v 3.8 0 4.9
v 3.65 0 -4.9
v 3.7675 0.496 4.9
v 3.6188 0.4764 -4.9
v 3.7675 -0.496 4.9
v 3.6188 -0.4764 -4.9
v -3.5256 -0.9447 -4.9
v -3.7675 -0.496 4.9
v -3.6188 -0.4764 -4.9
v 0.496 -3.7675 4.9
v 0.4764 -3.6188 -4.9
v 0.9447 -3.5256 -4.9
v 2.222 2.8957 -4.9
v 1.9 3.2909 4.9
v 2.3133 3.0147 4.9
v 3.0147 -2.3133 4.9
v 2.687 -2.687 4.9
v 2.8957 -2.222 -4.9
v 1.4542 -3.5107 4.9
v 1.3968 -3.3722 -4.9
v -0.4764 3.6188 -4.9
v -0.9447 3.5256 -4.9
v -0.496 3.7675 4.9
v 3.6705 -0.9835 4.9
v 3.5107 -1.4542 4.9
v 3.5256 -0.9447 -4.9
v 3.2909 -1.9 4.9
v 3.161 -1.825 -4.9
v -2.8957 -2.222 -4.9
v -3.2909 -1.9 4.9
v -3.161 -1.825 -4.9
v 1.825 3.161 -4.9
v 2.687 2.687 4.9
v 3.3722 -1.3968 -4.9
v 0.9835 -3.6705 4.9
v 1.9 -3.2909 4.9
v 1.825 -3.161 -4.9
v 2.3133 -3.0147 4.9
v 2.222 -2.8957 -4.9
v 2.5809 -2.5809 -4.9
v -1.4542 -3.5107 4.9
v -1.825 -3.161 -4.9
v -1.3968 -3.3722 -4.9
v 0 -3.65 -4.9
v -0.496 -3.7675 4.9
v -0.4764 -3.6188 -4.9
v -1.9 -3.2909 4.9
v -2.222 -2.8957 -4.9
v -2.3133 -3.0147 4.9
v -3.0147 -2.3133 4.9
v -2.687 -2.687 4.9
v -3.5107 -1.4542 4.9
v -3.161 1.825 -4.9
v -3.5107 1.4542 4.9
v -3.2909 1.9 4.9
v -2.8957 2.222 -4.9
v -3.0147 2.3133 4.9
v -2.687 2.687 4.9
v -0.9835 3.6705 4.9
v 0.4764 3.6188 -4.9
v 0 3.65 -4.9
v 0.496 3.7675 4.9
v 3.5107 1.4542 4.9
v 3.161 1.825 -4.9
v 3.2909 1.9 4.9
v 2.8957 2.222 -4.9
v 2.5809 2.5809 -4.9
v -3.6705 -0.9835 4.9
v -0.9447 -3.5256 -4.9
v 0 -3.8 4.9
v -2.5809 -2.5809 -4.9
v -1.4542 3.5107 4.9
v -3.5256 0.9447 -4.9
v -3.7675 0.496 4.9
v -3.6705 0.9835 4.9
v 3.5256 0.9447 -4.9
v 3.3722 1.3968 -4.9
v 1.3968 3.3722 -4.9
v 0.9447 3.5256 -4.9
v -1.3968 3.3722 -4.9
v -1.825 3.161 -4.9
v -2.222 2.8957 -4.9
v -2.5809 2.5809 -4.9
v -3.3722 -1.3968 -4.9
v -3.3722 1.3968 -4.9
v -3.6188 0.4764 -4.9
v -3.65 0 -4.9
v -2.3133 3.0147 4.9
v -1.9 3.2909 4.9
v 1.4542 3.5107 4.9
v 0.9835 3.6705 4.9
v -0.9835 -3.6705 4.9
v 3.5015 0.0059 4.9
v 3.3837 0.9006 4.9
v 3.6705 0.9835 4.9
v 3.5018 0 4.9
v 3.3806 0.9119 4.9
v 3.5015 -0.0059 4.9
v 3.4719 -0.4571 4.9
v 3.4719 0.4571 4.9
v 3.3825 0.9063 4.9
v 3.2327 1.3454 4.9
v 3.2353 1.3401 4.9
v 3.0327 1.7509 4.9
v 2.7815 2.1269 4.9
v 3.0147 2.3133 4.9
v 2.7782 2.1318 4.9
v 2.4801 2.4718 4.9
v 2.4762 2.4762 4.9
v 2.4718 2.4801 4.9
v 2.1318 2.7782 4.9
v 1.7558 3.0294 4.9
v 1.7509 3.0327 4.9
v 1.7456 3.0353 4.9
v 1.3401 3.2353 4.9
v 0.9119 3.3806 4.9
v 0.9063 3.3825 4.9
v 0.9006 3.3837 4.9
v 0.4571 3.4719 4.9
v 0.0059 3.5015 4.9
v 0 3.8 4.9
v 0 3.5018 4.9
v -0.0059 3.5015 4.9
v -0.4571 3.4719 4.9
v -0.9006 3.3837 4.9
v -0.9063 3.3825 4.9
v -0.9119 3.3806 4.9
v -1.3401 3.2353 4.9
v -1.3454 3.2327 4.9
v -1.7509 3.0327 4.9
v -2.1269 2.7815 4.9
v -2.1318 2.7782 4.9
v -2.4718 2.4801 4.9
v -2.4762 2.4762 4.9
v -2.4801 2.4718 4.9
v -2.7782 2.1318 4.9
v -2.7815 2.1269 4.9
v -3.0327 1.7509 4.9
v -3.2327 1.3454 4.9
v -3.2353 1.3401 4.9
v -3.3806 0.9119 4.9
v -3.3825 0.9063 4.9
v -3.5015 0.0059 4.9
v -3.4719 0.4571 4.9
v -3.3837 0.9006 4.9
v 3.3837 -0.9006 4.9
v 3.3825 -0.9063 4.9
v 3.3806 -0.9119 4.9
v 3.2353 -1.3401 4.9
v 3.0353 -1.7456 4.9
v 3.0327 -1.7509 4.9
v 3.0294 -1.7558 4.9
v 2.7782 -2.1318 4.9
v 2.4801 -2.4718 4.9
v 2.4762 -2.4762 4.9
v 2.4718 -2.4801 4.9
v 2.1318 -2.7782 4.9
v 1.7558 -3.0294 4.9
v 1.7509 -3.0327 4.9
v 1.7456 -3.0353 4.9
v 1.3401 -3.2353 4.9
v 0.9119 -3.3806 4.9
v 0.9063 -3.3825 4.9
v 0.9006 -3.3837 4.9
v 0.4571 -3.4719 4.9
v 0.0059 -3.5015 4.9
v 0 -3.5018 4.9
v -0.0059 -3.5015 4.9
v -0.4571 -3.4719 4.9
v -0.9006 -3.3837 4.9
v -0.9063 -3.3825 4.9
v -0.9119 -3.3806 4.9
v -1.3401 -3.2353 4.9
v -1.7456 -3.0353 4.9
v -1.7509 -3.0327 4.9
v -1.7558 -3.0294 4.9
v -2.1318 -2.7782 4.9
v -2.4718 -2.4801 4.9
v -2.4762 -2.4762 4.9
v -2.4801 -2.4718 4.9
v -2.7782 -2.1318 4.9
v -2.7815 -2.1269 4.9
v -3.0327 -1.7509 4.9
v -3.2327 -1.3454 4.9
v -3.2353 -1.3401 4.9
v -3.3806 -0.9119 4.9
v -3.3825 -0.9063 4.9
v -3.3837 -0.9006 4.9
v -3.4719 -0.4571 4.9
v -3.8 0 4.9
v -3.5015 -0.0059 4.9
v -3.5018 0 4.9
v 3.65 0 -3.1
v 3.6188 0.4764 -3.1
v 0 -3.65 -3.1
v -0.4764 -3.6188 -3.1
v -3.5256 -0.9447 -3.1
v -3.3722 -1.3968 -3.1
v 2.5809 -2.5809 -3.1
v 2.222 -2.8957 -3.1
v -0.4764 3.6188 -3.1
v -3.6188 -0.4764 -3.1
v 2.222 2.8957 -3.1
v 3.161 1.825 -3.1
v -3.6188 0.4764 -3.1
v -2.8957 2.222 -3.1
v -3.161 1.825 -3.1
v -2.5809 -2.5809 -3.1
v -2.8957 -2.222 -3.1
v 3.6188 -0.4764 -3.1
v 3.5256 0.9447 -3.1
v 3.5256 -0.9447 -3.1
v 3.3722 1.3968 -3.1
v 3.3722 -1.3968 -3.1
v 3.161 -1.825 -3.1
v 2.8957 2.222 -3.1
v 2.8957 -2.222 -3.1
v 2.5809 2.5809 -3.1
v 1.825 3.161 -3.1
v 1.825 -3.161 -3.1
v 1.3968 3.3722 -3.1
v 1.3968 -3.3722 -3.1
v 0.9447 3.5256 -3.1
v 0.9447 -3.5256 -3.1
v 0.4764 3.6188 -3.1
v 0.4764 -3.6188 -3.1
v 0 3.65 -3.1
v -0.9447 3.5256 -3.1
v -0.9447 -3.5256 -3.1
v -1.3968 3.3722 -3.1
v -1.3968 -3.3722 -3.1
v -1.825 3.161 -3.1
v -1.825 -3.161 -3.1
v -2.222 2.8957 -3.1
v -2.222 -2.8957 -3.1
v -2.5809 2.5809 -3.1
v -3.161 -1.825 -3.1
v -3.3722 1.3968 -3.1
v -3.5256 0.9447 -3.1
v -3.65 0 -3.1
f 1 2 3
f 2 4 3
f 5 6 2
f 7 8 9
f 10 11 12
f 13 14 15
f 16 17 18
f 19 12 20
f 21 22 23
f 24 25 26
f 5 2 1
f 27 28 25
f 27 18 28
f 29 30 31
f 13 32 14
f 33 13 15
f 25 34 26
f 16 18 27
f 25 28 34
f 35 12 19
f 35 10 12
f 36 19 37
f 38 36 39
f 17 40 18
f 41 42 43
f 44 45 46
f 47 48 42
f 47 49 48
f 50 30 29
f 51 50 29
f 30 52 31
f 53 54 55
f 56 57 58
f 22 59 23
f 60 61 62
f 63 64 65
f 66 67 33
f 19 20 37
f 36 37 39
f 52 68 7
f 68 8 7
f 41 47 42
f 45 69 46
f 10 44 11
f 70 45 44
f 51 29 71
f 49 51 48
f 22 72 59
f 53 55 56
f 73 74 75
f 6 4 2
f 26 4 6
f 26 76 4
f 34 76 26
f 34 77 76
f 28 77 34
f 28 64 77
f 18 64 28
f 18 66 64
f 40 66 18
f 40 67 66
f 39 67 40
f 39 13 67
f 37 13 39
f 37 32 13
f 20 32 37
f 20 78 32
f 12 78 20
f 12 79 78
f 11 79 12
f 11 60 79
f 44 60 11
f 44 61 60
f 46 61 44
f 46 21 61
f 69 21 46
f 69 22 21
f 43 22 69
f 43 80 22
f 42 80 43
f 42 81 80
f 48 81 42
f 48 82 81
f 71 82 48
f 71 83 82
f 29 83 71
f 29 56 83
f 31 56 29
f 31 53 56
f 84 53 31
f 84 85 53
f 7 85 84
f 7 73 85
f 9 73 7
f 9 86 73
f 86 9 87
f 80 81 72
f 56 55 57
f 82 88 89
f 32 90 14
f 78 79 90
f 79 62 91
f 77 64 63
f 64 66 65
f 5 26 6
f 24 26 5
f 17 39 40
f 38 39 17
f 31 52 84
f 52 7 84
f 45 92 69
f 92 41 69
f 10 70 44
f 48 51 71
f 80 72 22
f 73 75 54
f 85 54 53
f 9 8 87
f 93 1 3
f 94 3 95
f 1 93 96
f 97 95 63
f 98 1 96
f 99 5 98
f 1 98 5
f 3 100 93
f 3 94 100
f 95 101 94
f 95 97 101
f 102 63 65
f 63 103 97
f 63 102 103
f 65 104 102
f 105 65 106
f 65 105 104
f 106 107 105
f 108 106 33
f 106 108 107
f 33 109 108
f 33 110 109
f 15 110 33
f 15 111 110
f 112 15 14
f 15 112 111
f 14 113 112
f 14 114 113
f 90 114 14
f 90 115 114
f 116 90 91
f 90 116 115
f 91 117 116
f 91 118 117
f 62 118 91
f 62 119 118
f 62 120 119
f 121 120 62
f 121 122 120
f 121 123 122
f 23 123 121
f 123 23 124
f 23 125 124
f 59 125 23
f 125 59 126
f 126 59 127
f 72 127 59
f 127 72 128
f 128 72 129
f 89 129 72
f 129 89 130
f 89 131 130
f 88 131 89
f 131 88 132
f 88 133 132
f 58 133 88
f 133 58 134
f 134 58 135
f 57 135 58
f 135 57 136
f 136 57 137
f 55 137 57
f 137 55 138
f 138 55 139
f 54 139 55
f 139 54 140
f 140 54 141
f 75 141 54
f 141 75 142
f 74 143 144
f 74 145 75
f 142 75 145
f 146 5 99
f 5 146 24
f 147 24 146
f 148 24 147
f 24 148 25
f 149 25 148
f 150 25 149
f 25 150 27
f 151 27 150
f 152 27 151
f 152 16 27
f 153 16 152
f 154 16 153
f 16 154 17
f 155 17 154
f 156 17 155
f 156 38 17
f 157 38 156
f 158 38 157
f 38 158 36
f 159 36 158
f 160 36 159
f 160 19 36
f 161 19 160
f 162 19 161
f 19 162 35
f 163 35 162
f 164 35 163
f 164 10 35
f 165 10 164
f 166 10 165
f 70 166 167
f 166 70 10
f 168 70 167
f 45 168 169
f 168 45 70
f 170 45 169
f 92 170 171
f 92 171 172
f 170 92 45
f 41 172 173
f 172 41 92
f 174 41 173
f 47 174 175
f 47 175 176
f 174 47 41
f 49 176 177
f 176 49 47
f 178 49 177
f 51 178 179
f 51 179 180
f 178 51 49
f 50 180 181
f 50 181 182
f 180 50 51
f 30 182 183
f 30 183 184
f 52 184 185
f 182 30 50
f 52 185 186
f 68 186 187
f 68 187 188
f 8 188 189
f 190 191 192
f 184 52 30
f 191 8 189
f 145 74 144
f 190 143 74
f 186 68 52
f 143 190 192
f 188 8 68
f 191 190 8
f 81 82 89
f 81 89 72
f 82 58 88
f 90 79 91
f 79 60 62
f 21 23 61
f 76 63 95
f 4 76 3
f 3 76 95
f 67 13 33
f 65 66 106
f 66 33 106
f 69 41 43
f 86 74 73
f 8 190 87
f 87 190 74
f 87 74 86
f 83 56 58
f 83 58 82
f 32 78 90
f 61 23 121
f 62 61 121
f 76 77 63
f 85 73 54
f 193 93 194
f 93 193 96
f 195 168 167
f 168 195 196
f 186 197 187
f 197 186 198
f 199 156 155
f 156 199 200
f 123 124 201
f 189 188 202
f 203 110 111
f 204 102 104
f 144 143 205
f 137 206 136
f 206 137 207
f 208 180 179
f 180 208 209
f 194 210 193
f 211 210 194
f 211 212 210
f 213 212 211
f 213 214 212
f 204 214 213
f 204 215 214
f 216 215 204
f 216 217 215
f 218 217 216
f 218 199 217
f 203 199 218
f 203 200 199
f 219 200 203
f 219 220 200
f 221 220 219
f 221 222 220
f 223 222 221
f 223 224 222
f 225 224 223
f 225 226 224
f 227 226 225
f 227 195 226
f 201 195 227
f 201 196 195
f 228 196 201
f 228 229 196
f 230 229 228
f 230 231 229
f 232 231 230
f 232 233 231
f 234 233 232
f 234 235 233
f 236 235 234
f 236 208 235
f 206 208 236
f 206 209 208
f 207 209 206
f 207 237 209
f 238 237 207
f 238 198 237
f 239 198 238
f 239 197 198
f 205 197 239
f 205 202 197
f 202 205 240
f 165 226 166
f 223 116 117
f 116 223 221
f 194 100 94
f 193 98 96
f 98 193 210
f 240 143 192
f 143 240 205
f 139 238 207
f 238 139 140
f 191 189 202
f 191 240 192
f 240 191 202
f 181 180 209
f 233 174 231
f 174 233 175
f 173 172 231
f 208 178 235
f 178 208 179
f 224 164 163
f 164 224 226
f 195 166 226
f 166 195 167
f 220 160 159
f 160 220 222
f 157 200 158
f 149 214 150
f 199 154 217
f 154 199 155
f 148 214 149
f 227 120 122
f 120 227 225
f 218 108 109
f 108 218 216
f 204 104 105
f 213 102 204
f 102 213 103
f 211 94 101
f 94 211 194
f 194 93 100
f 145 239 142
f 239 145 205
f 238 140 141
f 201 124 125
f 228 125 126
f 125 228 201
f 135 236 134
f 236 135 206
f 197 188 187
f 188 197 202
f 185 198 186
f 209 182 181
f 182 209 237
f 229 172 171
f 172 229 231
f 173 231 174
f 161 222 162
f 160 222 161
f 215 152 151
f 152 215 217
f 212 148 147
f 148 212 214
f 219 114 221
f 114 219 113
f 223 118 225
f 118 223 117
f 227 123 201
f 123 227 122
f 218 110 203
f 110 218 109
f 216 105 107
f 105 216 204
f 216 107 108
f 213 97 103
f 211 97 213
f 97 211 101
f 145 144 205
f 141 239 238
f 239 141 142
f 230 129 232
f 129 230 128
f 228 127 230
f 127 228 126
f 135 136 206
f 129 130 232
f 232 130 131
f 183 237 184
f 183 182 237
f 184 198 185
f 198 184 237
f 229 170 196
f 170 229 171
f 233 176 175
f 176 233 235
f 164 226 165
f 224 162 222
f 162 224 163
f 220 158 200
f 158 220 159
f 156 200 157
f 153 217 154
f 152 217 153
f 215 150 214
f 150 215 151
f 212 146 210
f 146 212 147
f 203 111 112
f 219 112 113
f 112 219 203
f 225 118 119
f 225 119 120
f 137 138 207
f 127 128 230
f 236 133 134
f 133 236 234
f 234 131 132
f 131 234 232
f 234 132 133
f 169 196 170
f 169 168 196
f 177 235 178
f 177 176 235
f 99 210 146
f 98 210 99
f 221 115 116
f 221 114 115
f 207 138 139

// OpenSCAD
difference()
{
cylinder(h=9.8, d1=7.3, d2=7.6, center=true, $fn=48);
translate([0,0,(9.8-8.0+0.1) * 0.5]) cylinder(h=8.0+0.1, d1=7.3, d2=7.0, center=true, $fn=48);
};
